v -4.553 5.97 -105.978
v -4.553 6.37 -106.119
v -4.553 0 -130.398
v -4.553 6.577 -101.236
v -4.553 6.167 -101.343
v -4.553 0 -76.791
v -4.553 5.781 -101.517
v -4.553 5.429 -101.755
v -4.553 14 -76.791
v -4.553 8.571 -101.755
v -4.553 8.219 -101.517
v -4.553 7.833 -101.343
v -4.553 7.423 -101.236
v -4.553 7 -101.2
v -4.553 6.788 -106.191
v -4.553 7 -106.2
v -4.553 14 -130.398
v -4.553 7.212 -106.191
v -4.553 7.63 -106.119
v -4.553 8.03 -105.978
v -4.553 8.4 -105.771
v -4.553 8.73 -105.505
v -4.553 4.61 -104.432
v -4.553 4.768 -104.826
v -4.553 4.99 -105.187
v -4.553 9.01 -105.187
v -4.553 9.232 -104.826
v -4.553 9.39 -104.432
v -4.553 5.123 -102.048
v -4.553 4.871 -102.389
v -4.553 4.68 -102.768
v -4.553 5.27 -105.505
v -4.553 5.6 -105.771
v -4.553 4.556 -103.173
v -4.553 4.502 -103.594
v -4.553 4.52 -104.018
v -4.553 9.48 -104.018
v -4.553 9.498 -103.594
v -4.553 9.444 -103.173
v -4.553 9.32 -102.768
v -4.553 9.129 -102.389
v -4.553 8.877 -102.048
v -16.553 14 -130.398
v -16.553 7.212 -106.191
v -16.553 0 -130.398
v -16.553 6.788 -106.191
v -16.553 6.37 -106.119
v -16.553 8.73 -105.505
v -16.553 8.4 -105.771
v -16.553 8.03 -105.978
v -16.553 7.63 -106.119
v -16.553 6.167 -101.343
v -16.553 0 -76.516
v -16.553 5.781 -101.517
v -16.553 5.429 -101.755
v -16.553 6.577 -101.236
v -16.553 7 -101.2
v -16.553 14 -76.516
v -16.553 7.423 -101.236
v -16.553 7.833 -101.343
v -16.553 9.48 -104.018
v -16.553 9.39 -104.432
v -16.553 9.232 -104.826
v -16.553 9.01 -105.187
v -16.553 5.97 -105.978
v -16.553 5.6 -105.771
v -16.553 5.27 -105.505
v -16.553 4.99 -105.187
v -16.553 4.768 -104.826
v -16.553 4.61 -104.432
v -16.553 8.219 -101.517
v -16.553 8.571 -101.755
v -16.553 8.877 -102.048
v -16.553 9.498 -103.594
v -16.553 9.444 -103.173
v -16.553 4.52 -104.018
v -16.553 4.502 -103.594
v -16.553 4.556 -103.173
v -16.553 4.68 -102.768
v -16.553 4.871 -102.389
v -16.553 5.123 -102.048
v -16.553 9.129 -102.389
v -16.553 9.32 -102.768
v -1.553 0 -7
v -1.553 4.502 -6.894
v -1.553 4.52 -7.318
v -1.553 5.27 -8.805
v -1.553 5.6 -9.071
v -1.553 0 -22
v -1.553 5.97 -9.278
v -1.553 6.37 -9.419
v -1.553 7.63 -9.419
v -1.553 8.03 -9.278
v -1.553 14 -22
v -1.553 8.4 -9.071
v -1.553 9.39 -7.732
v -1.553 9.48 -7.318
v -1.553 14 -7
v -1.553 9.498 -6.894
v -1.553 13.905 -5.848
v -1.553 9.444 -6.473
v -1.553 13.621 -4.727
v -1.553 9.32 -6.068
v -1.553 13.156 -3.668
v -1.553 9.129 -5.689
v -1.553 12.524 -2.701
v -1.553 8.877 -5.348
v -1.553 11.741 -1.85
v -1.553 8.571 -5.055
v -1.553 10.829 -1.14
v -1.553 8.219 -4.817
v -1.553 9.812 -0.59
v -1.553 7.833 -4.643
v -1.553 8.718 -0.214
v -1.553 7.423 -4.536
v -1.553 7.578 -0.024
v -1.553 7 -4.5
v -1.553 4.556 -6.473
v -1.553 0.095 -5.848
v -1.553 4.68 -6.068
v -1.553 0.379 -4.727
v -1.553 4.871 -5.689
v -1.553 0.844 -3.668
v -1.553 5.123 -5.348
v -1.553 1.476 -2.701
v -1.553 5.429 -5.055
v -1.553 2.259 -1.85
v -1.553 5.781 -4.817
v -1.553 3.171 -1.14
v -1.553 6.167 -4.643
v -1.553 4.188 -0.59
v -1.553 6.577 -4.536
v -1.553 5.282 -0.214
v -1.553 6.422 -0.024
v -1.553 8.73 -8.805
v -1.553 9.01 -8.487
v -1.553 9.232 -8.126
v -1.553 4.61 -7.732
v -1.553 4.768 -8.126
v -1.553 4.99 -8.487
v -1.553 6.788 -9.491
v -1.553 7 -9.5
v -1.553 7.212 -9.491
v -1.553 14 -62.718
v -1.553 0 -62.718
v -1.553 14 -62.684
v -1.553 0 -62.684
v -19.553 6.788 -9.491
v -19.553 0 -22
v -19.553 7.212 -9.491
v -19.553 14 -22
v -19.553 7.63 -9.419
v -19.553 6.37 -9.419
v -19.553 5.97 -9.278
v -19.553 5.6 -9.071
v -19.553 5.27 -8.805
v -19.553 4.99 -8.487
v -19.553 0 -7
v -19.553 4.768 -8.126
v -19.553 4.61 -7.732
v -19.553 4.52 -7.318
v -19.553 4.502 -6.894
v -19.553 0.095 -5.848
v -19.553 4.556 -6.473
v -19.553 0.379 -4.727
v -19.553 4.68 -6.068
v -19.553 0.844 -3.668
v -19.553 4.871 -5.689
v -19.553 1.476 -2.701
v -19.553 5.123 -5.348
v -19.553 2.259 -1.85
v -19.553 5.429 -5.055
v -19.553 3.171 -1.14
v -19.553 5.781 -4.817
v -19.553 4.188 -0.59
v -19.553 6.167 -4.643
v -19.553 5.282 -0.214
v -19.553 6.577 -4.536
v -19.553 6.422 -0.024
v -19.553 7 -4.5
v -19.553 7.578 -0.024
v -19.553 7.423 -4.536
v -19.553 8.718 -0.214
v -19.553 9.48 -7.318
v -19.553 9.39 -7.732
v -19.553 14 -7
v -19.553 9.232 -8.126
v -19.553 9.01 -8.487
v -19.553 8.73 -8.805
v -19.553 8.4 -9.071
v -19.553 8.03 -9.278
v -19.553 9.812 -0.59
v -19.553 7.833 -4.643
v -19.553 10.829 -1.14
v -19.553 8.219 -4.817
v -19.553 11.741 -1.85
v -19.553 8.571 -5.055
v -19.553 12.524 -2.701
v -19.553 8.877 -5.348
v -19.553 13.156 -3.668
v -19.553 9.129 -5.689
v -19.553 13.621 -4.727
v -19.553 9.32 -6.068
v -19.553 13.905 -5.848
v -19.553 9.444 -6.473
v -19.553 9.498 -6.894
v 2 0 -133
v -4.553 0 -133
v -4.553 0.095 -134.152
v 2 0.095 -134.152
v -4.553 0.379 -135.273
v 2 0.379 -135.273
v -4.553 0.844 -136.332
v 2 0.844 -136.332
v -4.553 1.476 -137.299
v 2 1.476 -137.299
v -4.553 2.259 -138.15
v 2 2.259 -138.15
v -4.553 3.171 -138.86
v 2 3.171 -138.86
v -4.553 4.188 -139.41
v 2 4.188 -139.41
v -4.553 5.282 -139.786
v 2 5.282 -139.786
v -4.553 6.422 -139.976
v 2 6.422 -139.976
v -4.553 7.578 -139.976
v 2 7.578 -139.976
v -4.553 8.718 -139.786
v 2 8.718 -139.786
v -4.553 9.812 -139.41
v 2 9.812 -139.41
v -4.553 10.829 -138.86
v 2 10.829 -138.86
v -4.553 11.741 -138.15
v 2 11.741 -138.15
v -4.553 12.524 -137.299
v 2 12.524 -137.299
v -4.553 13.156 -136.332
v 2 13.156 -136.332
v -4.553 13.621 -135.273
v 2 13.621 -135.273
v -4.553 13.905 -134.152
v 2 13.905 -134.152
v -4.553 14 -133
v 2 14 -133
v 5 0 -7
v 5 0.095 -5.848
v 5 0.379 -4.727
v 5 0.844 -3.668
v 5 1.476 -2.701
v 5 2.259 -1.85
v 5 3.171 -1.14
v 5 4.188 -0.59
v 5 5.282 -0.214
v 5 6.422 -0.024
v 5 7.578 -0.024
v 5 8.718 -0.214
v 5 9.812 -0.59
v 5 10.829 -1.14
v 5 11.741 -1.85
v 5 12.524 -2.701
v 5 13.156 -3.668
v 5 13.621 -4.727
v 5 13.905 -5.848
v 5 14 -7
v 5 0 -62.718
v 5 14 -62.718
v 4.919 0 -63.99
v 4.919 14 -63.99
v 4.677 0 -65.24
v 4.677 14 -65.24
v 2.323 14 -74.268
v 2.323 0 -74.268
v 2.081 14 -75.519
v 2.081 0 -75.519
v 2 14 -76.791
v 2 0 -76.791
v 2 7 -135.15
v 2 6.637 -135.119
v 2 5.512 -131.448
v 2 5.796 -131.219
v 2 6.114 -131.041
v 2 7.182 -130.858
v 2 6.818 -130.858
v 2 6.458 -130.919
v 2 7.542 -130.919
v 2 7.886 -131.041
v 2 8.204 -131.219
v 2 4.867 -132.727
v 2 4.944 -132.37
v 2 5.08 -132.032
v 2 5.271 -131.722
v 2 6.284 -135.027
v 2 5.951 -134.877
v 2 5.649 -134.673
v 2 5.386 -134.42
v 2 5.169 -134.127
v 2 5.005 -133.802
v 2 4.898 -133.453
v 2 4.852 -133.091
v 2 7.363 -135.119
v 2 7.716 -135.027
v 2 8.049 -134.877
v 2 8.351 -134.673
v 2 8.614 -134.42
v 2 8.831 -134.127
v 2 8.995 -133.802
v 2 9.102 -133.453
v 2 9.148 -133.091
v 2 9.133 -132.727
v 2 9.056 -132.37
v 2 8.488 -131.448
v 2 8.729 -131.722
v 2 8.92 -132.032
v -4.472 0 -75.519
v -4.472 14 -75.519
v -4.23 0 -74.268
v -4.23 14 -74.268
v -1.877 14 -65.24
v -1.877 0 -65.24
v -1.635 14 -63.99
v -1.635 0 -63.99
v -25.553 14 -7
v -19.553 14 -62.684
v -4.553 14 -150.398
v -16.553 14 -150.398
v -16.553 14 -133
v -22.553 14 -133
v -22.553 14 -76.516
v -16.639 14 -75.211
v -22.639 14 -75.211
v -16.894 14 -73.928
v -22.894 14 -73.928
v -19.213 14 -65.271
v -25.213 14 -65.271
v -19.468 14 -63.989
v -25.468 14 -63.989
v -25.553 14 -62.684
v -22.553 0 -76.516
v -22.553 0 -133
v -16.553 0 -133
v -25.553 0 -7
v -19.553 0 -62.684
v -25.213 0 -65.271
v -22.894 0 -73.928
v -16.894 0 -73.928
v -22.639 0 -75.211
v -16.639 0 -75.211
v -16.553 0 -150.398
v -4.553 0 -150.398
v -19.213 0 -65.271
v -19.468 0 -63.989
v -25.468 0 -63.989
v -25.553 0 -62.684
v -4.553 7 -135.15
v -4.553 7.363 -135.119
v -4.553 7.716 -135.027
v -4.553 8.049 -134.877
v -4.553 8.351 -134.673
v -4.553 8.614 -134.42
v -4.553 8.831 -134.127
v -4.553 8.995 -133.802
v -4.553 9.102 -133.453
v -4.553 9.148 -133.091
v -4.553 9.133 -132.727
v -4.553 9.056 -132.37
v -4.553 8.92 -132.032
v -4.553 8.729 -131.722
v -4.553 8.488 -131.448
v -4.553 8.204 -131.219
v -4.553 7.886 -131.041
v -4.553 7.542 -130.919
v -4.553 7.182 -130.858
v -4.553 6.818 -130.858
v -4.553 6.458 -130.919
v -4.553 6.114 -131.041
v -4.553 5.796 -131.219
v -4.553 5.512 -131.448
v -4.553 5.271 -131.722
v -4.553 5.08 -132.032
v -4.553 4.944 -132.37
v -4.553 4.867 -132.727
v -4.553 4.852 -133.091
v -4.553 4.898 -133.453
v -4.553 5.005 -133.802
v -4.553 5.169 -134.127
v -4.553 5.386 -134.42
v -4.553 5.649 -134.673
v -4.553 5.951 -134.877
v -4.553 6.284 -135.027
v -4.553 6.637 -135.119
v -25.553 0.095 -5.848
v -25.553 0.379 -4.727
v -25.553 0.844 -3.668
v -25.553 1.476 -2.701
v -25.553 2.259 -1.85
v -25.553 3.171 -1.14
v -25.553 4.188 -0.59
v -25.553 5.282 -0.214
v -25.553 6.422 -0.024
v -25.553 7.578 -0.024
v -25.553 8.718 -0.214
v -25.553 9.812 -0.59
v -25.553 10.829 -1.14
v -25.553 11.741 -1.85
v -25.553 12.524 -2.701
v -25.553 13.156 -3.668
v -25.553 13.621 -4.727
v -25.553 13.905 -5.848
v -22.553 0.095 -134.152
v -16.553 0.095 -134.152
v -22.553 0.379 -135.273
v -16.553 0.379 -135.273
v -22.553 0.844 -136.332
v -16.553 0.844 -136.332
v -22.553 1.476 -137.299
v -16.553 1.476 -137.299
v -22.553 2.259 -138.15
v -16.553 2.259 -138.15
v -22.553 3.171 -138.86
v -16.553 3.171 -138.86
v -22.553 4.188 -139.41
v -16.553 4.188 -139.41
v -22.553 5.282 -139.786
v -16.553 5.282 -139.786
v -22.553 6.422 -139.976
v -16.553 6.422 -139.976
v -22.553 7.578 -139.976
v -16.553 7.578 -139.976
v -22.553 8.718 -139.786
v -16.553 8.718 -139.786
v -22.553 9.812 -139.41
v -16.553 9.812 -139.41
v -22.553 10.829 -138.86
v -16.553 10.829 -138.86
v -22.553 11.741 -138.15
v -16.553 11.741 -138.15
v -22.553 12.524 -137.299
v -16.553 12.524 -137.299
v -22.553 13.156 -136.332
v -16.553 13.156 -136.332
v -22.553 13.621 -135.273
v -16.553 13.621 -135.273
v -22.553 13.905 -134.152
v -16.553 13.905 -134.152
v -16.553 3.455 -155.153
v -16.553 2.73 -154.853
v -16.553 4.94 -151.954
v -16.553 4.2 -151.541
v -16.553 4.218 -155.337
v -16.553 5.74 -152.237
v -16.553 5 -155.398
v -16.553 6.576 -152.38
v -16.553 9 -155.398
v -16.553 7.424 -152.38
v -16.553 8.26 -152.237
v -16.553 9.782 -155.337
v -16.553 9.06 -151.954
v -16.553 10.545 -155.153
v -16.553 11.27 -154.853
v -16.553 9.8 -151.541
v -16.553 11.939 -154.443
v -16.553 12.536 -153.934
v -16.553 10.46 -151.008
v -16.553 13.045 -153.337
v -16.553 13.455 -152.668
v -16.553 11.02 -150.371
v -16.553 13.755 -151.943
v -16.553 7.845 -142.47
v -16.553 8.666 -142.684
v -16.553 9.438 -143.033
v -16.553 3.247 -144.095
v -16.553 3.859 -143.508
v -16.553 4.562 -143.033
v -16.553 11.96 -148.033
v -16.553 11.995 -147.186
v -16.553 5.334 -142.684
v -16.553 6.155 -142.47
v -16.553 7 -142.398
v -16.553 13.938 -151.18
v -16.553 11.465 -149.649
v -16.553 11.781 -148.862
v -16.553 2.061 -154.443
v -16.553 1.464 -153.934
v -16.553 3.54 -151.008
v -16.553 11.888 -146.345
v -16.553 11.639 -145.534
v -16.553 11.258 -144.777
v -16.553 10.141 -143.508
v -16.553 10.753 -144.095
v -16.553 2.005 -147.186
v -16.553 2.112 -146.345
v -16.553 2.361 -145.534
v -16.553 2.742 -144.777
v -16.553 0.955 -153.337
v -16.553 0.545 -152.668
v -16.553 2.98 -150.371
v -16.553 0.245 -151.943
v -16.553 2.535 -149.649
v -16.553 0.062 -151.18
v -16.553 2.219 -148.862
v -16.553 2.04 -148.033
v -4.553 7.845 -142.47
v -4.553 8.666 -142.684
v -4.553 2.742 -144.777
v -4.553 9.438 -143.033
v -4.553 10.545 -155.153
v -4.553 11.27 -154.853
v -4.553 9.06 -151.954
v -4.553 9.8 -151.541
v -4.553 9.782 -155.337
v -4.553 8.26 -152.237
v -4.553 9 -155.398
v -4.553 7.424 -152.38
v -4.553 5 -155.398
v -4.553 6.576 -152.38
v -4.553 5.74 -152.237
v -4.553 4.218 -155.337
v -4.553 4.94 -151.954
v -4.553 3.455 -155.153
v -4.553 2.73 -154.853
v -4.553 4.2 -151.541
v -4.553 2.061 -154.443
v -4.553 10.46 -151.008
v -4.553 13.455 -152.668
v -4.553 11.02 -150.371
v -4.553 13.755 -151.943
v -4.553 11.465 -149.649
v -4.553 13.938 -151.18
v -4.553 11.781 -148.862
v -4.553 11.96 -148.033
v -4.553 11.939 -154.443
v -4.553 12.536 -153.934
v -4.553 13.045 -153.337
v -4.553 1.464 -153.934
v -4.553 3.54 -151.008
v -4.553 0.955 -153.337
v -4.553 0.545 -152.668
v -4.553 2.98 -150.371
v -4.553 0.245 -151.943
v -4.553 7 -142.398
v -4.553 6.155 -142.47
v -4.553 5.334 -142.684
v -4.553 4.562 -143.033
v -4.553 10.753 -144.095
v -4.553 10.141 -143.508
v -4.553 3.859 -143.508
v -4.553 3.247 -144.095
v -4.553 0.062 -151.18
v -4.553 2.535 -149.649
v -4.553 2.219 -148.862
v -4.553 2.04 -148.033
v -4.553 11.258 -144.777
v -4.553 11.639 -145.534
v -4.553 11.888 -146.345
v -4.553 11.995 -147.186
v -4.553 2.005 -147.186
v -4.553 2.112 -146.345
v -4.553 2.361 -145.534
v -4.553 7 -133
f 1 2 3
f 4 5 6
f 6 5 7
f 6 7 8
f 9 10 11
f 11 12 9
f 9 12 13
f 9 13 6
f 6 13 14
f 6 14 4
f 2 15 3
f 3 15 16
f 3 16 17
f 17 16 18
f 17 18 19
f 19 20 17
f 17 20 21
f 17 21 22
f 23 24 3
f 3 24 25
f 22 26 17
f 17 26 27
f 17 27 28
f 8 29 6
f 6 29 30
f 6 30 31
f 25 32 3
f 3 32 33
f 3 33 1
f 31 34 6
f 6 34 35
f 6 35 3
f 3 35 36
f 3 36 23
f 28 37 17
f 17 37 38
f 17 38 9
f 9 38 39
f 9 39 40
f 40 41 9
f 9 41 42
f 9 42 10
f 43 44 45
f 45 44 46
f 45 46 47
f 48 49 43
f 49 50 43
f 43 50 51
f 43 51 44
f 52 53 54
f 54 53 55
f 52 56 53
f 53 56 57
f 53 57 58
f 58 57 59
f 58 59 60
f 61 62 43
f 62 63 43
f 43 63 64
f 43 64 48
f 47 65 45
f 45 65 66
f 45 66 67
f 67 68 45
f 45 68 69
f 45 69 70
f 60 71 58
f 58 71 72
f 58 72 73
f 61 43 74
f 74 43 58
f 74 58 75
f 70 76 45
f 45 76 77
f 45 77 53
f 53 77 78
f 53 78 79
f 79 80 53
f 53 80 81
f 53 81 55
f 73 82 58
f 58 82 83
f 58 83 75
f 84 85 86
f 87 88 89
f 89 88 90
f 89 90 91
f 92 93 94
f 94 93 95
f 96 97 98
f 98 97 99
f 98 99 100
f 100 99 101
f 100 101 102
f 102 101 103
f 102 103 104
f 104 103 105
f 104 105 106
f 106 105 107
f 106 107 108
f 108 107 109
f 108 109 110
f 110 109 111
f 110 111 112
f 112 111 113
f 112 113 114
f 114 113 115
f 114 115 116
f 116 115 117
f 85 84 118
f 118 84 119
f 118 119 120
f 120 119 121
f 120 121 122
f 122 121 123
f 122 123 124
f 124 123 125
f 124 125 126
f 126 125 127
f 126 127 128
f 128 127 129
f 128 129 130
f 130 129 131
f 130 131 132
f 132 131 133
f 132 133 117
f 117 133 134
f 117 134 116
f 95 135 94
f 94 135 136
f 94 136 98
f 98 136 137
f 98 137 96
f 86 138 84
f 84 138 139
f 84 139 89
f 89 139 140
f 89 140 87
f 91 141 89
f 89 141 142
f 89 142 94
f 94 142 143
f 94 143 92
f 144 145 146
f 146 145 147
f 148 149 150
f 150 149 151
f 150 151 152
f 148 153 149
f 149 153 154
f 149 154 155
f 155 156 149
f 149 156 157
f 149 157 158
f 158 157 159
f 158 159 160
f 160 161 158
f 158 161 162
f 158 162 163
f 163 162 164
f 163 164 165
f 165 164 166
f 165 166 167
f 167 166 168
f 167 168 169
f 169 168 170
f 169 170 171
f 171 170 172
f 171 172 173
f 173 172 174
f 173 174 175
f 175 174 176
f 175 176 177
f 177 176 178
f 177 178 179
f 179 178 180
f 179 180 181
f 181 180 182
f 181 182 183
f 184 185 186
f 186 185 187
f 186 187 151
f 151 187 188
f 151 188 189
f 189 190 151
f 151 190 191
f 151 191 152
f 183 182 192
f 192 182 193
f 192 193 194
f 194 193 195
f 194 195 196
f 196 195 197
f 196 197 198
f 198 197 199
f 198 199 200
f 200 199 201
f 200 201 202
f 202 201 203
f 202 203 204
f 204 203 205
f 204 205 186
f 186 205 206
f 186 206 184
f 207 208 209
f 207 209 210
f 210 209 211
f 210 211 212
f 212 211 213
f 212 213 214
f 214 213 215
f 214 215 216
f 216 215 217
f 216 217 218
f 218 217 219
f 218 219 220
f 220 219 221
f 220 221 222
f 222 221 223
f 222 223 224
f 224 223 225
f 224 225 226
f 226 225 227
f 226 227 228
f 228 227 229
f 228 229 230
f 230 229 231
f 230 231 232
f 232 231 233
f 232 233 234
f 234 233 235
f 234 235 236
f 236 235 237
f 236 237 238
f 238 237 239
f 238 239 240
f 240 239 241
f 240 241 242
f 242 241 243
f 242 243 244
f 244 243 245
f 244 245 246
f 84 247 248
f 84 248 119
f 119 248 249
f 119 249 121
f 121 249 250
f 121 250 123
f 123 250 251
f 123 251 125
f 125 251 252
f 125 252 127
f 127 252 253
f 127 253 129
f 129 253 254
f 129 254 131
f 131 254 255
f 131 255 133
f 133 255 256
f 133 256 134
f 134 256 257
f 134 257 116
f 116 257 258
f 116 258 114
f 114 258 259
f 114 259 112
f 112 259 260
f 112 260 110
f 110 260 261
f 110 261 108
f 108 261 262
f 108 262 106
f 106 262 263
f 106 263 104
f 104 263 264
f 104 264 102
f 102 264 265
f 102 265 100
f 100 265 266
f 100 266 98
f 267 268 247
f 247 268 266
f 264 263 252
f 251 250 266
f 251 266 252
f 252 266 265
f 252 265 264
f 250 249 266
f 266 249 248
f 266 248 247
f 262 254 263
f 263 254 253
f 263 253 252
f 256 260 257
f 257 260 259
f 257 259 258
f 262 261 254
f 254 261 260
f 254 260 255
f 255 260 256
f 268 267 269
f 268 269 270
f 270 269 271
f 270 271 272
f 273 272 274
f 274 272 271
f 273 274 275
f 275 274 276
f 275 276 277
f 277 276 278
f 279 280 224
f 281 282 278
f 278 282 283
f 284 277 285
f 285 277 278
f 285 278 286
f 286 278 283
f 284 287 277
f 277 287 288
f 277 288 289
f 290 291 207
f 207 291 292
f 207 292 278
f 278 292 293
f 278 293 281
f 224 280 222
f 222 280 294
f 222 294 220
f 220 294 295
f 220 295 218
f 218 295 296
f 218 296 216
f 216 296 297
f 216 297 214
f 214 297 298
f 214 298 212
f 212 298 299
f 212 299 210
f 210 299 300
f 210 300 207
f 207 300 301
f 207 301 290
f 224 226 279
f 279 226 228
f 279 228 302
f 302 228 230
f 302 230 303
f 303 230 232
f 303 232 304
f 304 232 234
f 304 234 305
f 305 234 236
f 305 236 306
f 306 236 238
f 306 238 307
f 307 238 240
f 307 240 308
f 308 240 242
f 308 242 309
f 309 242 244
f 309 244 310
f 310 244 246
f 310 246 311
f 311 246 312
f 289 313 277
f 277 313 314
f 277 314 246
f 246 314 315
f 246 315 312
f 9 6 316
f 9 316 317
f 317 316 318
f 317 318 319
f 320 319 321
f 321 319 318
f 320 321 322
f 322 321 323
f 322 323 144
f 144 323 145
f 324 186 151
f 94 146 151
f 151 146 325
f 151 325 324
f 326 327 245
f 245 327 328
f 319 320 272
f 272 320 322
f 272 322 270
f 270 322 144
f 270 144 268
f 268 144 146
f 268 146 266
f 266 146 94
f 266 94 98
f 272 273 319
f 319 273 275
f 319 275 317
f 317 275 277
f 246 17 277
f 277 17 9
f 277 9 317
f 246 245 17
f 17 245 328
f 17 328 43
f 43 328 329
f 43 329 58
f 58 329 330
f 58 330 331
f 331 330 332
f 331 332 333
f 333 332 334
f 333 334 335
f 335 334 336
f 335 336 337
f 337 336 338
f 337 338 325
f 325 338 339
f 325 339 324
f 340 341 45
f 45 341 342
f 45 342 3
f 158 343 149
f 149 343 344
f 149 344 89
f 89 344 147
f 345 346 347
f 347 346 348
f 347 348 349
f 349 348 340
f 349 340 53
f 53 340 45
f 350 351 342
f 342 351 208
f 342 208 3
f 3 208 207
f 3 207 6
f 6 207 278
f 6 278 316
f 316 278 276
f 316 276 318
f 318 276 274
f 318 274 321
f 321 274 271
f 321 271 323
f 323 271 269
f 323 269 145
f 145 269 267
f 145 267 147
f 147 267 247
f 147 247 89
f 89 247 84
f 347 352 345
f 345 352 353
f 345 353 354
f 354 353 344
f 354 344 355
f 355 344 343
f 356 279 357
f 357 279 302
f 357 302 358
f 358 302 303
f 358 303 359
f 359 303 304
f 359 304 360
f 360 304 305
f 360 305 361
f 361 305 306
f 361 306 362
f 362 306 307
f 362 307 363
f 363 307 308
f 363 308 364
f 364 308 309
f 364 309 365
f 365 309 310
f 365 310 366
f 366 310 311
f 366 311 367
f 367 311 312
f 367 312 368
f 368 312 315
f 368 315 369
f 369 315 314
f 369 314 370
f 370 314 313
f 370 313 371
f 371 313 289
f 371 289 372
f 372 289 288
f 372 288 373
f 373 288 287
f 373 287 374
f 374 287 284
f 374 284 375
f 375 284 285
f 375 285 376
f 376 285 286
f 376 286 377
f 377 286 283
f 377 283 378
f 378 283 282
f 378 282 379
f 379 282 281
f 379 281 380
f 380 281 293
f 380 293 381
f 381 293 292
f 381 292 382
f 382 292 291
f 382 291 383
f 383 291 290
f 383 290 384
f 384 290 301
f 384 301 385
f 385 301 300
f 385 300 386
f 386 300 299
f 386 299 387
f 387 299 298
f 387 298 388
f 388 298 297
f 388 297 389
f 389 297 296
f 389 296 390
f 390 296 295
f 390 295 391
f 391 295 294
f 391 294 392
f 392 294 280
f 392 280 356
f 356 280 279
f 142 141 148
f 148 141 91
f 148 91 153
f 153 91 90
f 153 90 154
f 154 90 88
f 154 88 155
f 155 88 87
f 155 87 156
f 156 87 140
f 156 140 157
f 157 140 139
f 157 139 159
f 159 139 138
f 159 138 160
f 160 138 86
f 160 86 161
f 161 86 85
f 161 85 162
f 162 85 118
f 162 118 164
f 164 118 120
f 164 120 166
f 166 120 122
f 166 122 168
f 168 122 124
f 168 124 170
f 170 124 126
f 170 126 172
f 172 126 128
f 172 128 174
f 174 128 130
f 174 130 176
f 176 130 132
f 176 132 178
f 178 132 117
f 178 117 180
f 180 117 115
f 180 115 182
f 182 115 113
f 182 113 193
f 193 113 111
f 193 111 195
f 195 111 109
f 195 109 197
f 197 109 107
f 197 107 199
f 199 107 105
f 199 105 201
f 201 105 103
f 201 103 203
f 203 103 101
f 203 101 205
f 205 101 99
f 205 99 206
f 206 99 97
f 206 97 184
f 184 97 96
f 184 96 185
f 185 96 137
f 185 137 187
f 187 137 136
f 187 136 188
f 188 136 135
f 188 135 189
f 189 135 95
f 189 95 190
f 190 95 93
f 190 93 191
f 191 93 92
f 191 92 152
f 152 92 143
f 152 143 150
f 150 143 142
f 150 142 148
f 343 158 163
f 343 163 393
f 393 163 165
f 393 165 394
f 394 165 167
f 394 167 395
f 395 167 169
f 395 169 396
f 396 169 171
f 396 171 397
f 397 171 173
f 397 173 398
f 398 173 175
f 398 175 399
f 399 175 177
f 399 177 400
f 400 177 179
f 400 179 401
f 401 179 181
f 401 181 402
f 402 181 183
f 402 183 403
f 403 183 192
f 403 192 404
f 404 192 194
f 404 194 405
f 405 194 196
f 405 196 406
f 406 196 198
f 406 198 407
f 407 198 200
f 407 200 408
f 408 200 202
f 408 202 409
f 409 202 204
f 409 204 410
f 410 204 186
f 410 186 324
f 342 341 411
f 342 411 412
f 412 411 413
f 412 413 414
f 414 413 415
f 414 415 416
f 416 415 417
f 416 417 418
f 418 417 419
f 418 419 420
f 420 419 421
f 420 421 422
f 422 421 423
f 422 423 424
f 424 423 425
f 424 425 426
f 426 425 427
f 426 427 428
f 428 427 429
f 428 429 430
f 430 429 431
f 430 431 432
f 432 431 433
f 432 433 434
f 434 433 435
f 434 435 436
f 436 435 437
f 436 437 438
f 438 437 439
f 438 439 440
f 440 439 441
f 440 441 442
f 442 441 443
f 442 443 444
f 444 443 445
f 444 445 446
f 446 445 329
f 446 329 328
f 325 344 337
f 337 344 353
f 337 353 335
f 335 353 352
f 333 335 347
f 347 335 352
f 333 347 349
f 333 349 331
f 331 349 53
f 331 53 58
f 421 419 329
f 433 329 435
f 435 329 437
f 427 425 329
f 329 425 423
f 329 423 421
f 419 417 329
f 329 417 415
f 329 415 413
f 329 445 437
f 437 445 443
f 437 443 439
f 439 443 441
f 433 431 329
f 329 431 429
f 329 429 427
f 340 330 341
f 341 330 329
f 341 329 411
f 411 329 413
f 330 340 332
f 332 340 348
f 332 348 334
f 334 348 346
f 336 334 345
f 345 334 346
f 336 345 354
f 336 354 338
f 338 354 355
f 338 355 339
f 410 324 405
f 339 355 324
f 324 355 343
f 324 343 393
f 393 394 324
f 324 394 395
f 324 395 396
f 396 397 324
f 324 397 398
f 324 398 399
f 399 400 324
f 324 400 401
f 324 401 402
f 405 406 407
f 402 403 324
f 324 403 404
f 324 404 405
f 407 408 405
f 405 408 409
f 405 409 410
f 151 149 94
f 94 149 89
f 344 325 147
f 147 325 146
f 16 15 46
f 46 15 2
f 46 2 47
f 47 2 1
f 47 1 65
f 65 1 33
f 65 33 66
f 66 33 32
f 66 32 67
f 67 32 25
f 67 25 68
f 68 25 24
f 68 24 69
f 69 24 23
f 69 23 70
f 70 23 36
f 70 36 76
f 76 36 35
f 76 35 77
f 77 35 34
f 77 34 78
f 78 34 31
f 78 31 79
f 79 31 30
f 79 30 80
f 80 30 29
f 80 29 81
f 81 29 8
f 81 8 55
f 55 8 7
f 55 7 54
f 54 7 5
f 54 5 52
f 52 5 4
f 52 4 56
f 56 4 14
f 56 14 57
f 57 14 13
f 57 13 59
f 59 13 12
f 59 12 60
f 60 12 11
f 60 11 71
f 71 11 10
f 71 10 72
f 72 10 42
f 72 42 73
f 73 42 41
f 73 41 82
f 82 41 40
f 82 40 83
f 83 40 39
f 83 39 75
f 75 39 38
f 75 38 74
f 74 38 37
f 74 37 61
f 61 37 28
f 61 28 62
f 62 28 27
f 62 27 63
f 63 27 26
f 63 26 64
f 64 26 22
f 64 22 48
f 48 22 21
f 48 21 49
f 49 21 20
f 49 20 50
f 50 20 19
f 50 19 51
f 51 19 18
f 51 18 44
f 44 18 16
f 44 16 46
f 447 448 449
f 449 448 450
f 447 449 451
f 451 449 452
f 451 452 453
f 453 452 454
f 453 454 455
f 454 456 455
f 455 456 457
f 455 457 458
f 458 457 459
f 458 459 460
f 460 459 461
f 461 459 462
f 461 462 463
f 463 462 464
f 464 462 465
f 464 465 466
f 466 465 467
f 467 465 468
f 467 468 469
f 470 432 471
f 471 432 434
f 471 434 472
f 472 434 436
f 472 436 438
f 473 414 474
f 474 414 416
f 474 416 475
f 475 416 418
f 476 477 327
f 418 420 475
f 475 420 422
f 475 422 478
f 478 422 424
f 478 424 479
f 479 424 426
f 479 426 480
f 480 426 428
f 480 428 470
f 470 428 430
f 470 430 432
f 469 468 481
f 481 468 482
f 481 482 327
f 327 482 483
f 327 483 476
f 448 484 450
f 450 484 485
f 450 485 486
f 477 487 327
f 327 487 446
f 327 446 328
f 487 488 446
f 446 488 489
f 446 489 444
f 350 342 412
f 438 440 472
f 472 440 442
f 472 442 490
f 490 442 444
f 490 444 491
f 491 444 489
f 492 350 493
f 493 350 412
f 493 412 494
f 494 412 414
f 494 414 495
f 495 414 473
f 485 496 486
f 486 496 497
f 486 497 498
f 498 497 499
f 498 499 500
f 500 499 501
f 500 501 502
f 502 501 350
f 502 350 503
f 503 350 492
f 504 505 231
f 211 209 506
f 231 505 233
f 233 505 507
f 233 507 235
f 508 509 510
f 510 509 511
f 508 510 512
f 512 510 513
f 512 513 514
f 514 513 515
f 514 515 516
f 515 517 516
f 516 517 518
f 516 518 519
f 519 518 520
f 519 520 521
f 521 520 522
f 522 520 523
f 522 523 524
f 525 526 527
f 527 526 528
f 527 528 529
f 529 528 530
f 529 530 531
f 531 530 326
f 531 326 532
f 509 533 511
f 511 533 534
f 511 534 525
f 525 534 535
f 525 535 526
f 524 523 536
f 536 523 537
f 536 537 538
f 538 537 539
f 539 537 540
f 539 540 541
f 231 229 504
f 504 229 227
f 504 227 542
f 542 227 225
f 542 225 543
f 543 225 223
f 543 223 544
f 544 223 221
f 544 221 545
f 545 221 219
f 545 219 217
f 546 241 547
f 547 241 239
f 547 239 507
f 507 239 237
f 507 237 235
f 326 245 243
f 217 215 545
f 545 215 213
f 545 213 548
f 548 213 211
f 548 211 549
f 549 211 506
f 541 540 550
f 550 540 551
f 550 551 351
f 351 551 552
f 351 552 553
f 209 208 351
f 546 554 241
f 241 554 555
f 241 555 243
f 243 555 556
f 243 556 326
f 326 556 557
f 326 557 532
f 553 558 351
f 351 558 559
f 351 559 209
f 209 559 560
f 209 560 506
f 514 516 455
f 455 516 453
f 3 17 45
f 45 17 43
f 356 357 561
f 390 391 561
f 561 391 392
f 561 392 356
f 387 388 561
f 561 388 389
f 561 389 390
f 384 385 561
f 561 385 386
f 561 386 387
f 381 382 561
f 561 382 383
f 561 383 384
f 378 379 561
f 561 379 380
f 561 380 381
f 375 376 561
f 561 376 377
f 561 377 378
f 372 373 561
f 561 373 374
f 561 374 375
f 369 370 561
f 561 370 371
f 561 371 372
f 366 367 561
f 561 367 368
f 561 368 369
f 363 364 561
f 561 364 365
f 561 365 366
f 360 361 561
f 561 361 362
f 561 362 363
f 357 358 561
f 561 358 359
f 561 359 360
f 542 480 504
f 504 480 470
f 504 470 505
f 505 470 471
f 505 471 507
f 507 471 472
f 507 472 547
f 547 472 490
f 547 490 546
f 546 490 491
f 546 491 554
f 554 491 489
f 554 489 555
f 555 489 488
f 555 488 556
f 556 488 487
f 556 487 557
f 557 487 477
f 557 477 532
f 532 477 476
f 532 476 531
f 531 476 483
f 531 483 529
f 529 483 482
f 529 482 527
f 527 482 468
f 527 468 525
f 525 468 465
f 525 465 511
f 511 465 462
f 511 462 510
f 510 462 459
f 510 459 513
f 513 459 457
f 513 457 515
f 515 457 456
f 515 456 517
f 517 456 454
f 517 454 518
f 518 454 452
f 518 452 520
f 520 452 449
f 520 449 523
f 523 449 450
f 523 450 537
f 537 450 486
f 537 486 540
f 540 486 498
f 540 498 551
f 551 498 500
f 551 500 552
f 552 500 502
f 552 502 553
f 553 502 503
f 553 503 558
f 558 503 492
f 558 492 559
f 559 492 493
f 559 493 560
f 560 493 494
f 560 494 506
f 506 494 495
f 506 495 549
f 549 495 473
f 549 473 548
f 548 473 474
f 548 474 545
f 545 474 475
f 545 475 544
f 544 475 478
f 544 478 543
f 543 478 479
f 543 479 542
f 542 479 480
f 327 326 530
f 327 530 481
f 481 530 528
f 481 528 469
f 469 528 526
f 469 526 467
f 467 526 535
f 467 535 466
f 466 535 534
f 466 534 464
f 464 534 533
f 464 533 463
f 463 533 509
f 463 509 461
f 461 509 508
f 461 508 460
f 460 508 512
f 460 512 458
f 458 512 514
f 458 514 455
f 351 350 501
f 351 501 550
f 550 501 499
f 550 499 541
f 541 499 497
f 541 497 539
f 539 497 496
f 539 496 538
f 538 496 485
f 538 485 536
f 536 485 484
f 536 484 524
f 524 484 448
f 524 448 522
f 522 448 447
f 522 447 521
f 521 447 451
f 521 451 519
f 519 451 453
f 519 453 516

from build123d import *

# Parameters (mm, degrees)
EXTRUDE_2_DEPTH     = 14
FILLET_1_RADIUS     = 7
FILLET_1_LENGTH     = 6.553419282
FILLET_2_RADIUS     = 7
FILLET_2_LENGTH     = 6.553419282
CUT_EXTRUDE_1_REACH = 142.851
SKETCH_2_R          = 2.15
EXTRUDE_3_DEPTH     = 14
FILLET_3_RADIUS     = 7
FILLET_3_LENGTH     = 6
FILLET_4_RADIUS     = 7
FILLET_4_LENGTH     = 6
EXTRUDE_5_REACH     = 144.825
SKETCH_8_R          = 2.5
SKETCH_8_W          = 40.683862831
SKETCH_8_H          = 14
EXTRUDE_6_REACH     = 144.34
SKETCH_11_R         = 2.5
SKETCH_12_W         = 25
SKETCH_12_H         = 14
EXTRUDE_7_DEPTH     = 12
SKETCH_13_R         = 5
CUT_EXTRUDE_2_DEPTH = 12
FILLET_5_R          = 5


with BuildPart() as part:
    # 草图1 → 凸台-拉伸2 (new body)
    with BuildSketch(Plane(origin=(0, 0, 0), x_dir=(1, 0, 0), z_dir=(0, 1, 0))):
        with BuildLine():
            Line((5, 0), (5, 62.718048915))
            ThreePointArc((5, 62.718048915), (4.918829182, 63.989594298), (4.676634468, 65.240497206))
            Line((4.676634468, 65.240497206), (2.323365532, 74.268124597))
            ThreePointArc((2.323365532, 74.268124597), (2.081170818, 75.519027505), (2, 76.790572889))
            Line((2, 76.790572889), (2, 140))
            Line((2, 140), (-4.553419282, 140))
            Line((-4.553419282, 140), (-4.553419282, 76.790572889))
            ThreePointArc((-4.553419282, 76.790572889), (-4.472248464, 75.519027505), (-4.23005375, 74.268124597))
            Line((-4.23005375, 74.268124597), (-1.876784815, 65.240497206))
            ThreePointArc((-1.876784815, 65.240497206), (-1.6345901, 63.989594298), (-1.553419282, 62.718048915))
            Line((-1.553419282, 62.718048915), (-1.553419282, 0))
            Line((-1.553419282, 0), (5, 0))
        make_face()
    extrude(amount=EXTRUDE_2_DEPTH)

    # 圆角1: full round fillet: the end face becomes a half cylinder, R = half its width
    fillet_1_face = Plane((1.723290359, 7, 0), x_dir=(1, 0, 0), z_dir=(0, 0, 1))  # on the end face: x along it, z out of the body
    fillet_1_slab = fillet_1_face.offset(-FILLET_1_RADIUS / 2) * Box(FILLET_1_LENGTH, 2 * FILLET_1_RADIUS, FILLET_1_RADIUS, mode=Mode.PRIVATE)  # the body's end, R deep
    fillet_1_round = Plane((1.723290359, 7, -7), x_dir=(0, 0, 1), z_dir=(1, 0, 0)) * Cylinder(FILLET_1_RADIUS, FILLET_1_LENGTH, mode=Mode.PRIVATE)  # its axis R under the face
    add(fillet_1_slab - fillet_1_round, mode=Mode.SUBTRACT)

    # 圆角2: full round fillet: the end face becomes a half cylinder, R = half its width
    fillet_2_face = Plane((-1.276709641, 7, -140), x_dir=(-1, 0, 0), z_dir=(0, 0, -1))  # on the end face: x along it, z out of the body
    fillet_2_slab = fillet_2_face.offset(-FILLET_2_RADIUS / 2) * Box(FILLET_2_LENGTH, 2 * FILLET_2_RADIUS, FILLET_2_RADIUS, mode=Mode.PRIVATE)  # the body's end, R deep
    fillet_2_round = Plane((-1.276709641, 7, -133), x_dir=(0, 0, -1), z_dir=(-1, 0, 0)) * Cylinder(FILLET_2_RADIUS, FILLET_2_LENGTH, mode=Mode.PRIVATE)  # its axis R under the face
    add(fillet_2_slab - fillet_2_round, mode=Mode.SUBTRACT)

    # 草图2 → 切除-拉伸1 (cut, up to next)
    with BuildSketch(Plane(origin=(2, 0, 0), x_dir=(0, 0, -1), z_dir=(1, 0, 0)), mode=Mode.PRIVATE) as cut_extrude_1_sk1:
        with Locations((133, 7)):
            Circle(SKETCH_2_R)
    cut_extrude_1_tool1 = extrude(cut_extrude_1_sk1.sketch, amount=-CUT_EXTRUDE_1_REACH, mode=Mode.PRIVATE) & part.part
    add(cut_extrude_1_tool1.solids().sort_by_distance((2, 7, -133))[0], mode=Mode.SUBTRACT)

    # 草图8 → 凸台-拉伸5 (add, up to next)
    with BuildSketch(Plane(origin=(-19.553419282, 0, 0), x_dir=(0, 0, -1), z_dir=(1, 0, 0)), mode=Mode.PRIVATE) as extrude_5_sk1:
        with Locations(Location((7, 7, 0), (0, 0, 180))):
            Circle(SKETCH_8_R)
    extrude_5_tool1 = extrude(extrude_5_sk1.sketch, amount=EXTRUDE_5_REACH, mode=Mode.PRIVATE) - part.part
    # 草图8 → 凸台-拉伸5 (add, up to next)
    with BuildSketch(Plane(origin=(-19.553419282, 0, 0), x_dir=(0, 0, -1), z_dir=(1, 0, 0)), mode=Mode.PRIVATE) as extrude_5_sk2:
        with Locations((42.341931415, 7)):
            Rectangle(SKETCH_8_W, SKETCH_8_H)
    extrude_5_tool2 = extrude(extrude_5_sk2.sketch, amount=EXTRUDE_5_REACH, mode=Mode.PRIVATE) - part.part


with BuildPart() as body_2:
    # 草图4 → 凸台-拉伸3 (new body)
    with BuildSketch(Plane(origin=(0, 0, 0), x_dir=(1, 0, 0), z_dir=(0, 1, 0))):
        with BuildLine():
            Line((-19.553419282, 0), (-25.553419282, 0))
            Line((-25.553419282, 0), (-25.553419282, 62.683862831))
            ThreePointArc((-25.553419282, 62.683862831), (-25.467917646, 63.988746812), (-25.212874842, 65.271316849))
            Line((-25.212874842, 65.271316849), (-22.893963723, 73.928250938))
            ThreePointArc((-22.893963723, 73.928250938), (-22.638920919, 75.210820976), (-22.553419282, 76.515704957))
            Line((-22.553419282, 76.515704957), (-22.553419282, 140))
            Line((-22.553419282, 140), (-16.553419282, 140))
            Line((-16.553419282, 140), (-16.553419282, 76.515704957))
            ThreePointArc((-16.553419282, 76.515704957), (-16.638920919, 75.210820976), (-16.893963723, 73.928250938))
            Line((-16.893963723, 73.928250938), (-19.212874842, 65.271316849))
            ThreePointArc((-19.212874842, 65.271316849), (-19.467917646, 63.988746812), (-19.553419282, 62.683862831))
            Line((-19.553419282, 62.683862831), (-19.553419282, 0))
        make_face()
    extrude(amount=EXTRUDE_3_DEPTH)

    # 圆角3: full round fillet: the end face becomes a half cylinder, R = half its width
    fillet_3_face = Plane((-19.553419282, 7, -140), x_dir=(-1, 0, 0), z_dir=(0, 0, -1))  # on the end face: x along it, z out of the body
    fillet_3_slab = fillet_3_face.offset(-FILLET_3_RADIUS / 2) * Box(FILLET_3_LENGTH, 2 * FILLET_3_RADIUS, FILLET_3_RADIUS, mode=Mode.PRIVATE)  # the body's end, R deep
    fillet_3_round = Plane((-19.553419282, 7, -133), x_dir=(0, 0, -1), z_dir=(-1, 0, 0)) * Cylinder(FILLET_3_RADIUS, FILLET_3_LENGTH, mode=Mode.PRIVATE)  # its axis R under the face
    add(fillet_3_slab - fillet_3_round, mode=Mode.SUBTRACT)

    # 圆角4: full round fillet: the end face becomes a half cylinder, R = half its width
    fillet_4_face = Plane((-22.553419282, 7, 0), x_dir=(1, 0, 0), z_dir=(0, 0, 1))  # on the end face: x along it, z out of the body
    fillet_4_slab = fillet_4_face.offset(-FILLET_4_RADIUS / 2) * Box(FILLET_4_LENGTH, 2 * FILLET_4_RADIUS, FILLET_4_RADIUS, mode=Mode.PRIVATE)  # the body's end, R deep
    fillet_4_round = Plane((-22.553419282, 7, -7), x_dir=(0, 0, 1), z_dir=(1, 0, 0)) * Cylinder(FILLET_4_RADIUS, FILLET_4_LENGTH, mode=Mode.PRIVATE)  # its axis R under the face
    add(fillet_4_slab - fillet_4_round, mode=Mode.SUBTRACT)


with BuildPart() as part_1:
    add(part.part)

    add(body_2.part)  # 凸台-拉伸5 merges body 2
    add(extrude_5_tool1.solids().sort_by_distance((-19.553419, 7, -7))[0])
    add(extrude_5_tool2.solids().sort_by_distance((-19.553419, 7, -42.341931))[0])

    # 草图11 → 凸台-拉伸6 (add, up to next)
    with BuildSketch(Plane(origin=(-16.553419282, 0, 0), x_dir=(0, 0, -1), z_dir=(1, 0, 0)), mode=Mode.PRIVATE) as extrude_6_sk1:
        with Locations(Location((103.7, 7, 0), (0, 0, 180))):
            Circle(SKETCH_11_R)
    extrude_6_tool1 = extrude(extrude_6_sk1.sketch, amount=EXTRUDE_6_REACH, mode=Mode.PRIVATE) - part_1.part
    add(extrude_6_tool1.solids().sort_by_distance((-16.553419, 7, -103.7))[0])

    # 草图12 → 凸台-拉伸7 (add)
    with BuildSketch(Plane(origin=(-16.553419282, 0, 0), x_dir=(0, 0, -1), z_dir=(1, 0, 0))):
        with Locations((142.898160933, 7)):
            Rectangle(SKETCH_12_W, SKETCH_12_H)
    extrude(amount=EXTRUDE_7_DEPTH)

    # 草图13 → 切除-拉伸2 (cut)
    with BuildSketch(Plane.ZY.offset(16.553419282)):
        with Locations((-147.398160933, 7)):
            Circle(SKETCH_13_R)
    extrude(amount=-CUT_EXTRUDE_2_DEPTH, mode=Mode.SUBTRACT)

    # 圆角5
    fillet_5_edges = [part_1.edges().sort_by_distance(p)[0] for p in [
        (-10.553419282, 0, -155.398160933),
        (-10.553419282, 14, -155.398160933),
    ]]
    fillet(fillet_5_edges, radius=FILLET_5_R)


solid = part_1.part
